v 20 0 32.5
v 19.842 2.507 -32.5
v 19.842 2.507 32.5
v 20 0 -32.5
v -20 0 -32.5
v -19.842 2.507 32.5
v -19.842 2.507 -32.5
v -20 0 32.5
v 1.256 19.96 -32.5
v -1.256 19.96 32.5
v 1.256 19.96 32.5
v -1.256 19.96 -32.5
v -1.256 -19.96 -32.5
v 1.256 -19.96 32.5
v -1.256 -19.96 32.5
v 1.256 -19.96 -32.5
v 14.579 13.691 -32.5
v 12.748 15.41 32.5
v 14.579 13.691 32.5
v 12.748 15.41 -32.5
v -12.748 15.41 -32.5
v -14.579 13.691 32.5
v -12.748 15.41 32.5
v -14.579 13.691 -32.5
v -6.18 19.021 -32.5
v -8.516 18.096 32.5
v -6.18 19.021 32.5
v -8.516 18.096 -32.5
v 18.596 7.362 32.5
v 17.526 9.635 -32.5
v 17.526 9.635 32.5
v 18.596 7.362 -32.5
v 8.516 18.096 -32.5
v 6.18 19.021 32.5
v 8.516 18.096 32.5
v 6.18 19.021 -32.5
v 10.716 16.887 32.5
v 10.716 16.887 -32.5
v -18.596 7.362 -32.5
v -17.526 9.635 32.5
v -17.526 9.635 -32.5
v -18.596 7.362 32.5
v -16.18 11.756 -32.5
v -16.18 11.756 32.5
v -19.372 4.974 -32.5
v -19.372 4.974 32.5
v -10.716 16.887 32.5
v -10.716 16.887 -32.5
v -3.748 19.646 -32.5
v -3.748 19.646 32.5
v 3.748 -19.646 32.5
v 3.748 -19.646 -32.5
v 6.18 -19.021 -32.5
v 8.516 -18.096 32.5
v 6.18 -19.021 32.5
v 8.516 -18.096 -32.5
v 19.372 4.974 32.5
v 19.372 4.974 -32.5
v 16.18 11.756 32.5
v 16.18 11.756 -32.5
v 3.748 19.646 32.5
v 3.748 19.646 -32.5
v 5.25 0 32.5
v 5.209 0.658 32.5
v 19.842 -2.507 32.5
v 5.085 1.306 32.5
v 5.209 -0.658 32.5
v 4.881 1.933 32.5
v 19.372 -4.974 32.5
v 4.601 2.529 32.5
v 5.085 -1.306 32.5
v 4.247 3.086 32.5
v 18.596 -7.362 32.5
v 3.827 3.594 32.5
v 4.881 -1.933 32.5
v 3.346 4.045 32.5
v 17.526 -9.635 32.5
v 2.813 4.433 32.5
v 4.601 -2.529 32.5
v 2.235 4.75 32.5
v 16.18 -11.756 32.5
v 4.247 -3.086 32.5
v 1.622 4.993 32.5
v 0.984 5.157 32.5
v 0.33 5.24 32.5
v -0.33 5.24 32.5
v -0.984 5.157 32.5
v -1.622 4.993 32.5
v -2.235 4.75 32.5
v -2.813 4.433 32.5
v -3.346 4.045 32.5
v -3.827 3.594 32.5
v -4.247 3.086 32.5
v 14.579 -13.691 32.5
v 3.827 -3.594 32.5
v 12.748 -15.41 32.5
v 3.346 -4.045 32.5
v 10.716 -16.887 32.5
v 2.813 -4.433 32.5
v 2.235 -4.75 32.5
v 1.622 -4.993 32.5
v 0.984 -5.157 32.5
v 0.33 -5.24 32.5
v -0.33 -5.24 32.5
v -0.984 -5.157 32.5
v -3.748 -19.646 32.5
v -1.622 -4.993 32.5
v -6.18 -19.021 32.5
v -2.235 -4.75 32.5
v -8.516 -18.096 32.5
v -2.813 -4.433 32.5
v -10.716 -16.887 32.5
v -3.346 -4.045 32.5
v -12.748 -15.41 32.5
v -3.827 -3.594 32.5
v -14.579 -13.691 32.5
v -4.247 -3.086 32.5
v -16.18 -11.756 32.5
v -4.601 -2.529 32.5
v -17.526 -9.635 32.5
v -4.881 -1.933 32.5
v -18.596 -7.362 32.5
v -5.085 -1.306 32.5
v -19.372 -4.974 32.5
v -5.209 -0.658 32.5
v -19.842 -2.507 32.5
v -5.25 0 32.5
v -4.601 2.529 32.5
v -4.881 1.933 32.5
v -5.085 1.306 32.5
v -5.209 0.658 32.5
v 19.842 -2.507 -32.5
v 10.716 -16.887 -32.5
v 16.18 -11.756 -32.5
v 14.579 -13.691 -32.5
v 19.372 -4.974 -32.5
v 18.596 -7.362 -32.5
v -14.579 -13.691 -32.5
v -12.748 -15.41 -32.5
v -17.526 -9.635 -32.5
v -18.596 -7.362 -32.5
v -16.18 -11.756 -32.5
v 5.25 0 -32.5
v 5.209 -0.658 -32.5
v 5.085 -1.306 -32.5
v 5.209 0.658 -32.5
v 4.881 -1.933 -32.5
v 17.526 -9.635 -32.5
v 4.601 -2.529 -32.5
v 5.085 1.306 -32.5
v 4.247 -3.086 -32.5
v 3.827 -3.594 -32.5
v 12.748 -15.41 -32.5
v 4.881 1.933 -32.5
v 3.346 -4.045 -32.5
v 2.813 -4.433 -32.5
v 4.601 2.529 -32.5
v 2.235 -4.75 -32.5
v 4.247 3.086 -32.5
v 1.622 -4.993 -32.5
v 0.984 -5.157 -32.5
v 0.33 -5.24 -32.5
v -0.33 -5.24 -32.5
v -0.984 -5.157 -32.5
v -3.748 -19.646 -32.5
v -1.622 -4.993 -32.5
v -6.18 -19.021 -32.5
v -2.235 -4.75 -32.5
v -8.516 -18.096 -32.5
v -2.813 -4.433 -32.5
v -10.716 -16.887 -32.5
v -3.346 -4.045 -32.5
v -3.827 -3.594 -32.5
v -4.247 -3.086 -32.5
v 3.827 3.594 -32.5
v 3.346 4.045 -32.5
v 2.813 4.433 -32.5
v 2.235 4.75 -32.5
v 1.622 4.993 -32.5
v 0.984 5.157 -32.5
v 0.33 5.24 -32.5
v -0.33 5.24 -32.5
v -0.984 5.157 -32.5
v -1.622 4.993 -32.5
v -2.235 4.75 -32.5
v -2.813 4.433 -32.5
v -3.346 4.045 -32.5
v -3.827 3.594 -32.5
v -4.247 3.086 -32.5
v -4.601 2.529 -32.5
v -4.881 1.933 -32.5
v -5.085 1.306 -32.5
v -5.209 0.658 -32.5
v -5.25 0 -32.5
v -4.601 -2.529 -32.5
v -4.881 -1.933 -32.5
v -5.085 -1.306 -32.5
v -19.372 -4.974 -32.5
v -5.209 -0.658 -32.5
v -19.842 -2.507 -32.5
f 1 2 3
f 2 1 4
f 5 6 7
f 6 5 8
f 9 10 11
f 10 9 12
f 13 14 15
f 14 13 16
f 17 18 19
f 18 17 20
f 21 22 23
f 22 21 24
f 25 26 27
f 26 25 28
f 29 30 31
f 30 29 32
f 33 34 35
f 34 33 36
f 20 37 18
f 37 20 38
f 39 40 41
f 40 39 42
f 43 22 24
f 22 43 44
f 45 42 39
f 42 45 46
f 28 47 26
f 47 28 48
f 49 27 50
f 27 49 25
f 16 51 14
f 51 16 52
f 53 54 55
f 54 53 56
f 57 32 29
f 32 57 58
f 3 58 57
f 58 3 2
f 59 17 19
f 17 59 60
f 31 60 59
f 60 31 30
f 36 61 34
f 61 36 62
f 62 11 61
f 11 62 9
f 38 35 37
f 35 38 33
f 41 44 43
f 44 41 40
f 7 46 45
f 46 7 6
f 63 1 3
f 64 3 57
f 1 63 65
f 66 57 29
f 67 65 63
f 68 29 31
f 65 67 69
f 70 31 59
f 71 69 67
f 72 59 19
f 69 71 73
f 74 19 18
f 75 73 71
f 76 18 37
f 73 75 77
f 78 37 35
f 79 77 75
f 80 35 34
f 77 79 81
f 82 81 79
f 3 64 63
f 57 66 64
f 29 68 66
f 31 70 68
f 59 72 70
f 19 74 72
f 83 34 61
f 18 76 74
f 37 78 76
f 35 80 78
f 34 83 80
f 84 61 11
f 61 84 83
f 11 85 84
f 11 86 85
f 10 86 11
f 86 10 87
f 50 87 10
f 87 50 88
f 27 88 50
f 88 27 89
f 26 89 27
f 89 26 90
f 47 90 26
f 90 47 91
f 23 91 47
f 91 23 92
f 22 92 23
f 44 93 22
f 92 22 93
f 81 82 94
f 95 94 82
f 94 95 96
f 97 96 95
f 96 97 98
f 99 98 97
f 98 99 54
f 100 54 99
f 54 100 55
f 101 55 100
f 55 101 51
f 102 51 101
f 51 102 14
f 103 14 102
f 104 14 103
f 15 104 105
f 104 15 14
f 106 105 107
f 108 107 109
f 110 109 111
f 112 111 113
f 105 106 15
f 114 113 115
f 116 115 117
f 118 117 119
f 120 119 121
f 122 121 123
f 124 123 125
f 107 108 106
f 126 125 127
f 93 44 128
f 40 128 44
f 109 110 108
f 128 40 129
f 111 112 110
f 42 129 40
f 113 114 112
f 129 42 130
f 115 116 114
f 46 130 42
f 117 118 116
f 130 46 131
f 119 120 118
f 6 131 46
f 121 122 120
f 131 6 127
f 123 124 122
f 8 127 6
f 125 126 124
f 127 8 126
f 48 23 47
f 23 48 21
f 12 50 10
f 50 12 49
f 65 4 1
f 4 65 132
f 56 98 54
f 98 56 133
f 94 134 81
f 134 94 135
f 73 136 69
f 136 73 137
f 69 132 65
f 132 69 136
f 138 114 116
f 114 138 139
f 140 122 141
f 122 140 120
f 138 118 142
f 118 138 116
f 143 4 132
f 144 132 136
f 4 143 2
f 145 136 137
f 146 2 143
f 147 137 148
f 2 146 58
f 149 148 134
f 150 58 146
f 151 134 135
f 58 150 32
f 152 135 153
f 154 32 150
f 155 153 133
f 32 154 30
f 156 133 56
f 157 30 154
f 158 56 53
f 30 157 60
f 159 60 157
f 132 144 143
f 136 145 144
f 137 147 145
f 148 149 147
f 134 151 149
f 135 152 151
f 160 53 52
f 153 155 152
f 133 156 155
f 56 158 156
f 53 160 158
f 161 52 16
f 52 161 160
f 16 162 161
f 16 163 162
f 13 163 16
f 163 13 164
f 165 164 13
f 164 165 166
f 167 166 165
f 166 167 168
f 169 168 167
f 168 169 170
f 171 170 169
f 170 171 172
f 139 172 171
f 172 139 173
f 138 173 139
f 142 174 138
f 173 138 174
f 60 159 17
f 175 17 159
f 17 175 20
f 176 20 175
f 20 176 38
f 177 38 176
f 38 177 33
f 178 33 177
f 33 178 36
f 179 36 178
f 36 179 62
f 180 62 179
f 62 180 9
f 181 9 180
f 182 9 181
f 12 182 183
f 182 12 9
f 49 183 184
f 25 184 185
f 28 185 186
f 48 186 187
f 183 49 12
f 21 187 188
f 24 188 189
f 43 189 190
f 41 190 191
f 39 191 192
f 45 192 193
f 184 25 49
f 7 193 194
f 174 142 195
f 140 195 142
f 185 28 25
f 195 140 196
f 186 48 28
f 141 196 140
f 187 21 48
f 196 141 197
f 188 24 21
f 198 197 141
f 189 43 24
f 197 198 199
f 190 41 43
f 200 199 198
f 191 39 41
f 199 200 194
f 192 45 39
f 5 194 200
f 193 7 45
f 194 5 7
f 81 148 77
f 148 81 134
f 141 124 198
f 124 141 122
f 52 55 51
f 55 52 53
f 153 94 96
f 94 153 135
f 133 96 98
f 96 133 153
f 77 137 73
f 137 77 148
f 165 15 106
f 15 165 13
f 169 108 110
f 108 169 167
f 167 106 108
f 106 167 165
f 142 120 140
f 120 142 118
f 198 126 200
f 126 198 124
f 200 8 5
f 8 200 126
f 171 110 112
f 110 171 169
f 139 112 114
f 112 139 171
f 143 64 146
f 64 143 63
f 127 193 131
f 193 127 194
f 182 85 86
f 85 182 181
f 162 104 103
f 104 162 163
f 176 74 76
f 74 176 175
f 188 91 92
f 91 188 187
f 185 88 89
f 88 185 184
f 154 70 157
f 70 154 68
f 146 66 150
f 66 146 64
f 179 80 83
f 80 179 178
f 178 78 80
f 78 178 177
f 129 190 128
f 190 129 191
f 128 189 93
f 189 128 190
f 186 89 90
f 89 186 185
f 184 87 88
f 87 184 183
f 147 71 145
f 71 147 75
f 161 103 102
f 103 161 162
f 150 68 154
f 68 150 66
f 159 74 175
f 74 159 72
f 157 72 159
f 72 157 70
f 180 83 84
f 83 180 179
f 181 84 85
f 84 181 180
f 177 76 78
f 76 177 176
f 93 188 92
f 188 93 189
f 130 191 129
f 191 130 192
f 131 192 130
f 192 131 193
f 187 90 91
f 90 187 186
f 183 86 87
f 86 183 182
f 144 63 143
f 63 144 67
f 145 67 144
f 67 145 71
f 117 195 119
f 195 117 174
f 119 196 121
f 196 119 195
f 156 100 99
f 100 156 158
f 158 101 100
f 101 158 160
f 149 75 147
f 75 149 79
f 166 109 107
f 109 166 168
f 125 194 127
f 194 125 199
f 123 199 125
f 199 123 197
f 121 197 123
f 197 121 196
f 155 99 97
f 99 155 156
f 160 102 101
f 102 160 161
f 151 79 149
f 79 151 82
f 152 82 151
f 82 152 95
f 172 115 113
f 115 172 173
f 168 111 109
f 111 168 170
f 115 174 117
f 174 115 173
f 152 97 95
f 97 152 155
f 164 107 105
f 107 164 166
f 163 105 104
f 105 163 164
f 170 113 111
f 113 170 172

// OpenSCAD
$fn = 50;


difference() {
	union() {
		translate(v = [0, 0, -32.5000000000]) {
			cylinder(h = 65, r = 20.0000000000);
		}
	}
	union() {
		translate(v = [0, 0, -100.0000000000]) {
			cylinder(h = 200, r = 5.2500000000);
		}
	}
}
